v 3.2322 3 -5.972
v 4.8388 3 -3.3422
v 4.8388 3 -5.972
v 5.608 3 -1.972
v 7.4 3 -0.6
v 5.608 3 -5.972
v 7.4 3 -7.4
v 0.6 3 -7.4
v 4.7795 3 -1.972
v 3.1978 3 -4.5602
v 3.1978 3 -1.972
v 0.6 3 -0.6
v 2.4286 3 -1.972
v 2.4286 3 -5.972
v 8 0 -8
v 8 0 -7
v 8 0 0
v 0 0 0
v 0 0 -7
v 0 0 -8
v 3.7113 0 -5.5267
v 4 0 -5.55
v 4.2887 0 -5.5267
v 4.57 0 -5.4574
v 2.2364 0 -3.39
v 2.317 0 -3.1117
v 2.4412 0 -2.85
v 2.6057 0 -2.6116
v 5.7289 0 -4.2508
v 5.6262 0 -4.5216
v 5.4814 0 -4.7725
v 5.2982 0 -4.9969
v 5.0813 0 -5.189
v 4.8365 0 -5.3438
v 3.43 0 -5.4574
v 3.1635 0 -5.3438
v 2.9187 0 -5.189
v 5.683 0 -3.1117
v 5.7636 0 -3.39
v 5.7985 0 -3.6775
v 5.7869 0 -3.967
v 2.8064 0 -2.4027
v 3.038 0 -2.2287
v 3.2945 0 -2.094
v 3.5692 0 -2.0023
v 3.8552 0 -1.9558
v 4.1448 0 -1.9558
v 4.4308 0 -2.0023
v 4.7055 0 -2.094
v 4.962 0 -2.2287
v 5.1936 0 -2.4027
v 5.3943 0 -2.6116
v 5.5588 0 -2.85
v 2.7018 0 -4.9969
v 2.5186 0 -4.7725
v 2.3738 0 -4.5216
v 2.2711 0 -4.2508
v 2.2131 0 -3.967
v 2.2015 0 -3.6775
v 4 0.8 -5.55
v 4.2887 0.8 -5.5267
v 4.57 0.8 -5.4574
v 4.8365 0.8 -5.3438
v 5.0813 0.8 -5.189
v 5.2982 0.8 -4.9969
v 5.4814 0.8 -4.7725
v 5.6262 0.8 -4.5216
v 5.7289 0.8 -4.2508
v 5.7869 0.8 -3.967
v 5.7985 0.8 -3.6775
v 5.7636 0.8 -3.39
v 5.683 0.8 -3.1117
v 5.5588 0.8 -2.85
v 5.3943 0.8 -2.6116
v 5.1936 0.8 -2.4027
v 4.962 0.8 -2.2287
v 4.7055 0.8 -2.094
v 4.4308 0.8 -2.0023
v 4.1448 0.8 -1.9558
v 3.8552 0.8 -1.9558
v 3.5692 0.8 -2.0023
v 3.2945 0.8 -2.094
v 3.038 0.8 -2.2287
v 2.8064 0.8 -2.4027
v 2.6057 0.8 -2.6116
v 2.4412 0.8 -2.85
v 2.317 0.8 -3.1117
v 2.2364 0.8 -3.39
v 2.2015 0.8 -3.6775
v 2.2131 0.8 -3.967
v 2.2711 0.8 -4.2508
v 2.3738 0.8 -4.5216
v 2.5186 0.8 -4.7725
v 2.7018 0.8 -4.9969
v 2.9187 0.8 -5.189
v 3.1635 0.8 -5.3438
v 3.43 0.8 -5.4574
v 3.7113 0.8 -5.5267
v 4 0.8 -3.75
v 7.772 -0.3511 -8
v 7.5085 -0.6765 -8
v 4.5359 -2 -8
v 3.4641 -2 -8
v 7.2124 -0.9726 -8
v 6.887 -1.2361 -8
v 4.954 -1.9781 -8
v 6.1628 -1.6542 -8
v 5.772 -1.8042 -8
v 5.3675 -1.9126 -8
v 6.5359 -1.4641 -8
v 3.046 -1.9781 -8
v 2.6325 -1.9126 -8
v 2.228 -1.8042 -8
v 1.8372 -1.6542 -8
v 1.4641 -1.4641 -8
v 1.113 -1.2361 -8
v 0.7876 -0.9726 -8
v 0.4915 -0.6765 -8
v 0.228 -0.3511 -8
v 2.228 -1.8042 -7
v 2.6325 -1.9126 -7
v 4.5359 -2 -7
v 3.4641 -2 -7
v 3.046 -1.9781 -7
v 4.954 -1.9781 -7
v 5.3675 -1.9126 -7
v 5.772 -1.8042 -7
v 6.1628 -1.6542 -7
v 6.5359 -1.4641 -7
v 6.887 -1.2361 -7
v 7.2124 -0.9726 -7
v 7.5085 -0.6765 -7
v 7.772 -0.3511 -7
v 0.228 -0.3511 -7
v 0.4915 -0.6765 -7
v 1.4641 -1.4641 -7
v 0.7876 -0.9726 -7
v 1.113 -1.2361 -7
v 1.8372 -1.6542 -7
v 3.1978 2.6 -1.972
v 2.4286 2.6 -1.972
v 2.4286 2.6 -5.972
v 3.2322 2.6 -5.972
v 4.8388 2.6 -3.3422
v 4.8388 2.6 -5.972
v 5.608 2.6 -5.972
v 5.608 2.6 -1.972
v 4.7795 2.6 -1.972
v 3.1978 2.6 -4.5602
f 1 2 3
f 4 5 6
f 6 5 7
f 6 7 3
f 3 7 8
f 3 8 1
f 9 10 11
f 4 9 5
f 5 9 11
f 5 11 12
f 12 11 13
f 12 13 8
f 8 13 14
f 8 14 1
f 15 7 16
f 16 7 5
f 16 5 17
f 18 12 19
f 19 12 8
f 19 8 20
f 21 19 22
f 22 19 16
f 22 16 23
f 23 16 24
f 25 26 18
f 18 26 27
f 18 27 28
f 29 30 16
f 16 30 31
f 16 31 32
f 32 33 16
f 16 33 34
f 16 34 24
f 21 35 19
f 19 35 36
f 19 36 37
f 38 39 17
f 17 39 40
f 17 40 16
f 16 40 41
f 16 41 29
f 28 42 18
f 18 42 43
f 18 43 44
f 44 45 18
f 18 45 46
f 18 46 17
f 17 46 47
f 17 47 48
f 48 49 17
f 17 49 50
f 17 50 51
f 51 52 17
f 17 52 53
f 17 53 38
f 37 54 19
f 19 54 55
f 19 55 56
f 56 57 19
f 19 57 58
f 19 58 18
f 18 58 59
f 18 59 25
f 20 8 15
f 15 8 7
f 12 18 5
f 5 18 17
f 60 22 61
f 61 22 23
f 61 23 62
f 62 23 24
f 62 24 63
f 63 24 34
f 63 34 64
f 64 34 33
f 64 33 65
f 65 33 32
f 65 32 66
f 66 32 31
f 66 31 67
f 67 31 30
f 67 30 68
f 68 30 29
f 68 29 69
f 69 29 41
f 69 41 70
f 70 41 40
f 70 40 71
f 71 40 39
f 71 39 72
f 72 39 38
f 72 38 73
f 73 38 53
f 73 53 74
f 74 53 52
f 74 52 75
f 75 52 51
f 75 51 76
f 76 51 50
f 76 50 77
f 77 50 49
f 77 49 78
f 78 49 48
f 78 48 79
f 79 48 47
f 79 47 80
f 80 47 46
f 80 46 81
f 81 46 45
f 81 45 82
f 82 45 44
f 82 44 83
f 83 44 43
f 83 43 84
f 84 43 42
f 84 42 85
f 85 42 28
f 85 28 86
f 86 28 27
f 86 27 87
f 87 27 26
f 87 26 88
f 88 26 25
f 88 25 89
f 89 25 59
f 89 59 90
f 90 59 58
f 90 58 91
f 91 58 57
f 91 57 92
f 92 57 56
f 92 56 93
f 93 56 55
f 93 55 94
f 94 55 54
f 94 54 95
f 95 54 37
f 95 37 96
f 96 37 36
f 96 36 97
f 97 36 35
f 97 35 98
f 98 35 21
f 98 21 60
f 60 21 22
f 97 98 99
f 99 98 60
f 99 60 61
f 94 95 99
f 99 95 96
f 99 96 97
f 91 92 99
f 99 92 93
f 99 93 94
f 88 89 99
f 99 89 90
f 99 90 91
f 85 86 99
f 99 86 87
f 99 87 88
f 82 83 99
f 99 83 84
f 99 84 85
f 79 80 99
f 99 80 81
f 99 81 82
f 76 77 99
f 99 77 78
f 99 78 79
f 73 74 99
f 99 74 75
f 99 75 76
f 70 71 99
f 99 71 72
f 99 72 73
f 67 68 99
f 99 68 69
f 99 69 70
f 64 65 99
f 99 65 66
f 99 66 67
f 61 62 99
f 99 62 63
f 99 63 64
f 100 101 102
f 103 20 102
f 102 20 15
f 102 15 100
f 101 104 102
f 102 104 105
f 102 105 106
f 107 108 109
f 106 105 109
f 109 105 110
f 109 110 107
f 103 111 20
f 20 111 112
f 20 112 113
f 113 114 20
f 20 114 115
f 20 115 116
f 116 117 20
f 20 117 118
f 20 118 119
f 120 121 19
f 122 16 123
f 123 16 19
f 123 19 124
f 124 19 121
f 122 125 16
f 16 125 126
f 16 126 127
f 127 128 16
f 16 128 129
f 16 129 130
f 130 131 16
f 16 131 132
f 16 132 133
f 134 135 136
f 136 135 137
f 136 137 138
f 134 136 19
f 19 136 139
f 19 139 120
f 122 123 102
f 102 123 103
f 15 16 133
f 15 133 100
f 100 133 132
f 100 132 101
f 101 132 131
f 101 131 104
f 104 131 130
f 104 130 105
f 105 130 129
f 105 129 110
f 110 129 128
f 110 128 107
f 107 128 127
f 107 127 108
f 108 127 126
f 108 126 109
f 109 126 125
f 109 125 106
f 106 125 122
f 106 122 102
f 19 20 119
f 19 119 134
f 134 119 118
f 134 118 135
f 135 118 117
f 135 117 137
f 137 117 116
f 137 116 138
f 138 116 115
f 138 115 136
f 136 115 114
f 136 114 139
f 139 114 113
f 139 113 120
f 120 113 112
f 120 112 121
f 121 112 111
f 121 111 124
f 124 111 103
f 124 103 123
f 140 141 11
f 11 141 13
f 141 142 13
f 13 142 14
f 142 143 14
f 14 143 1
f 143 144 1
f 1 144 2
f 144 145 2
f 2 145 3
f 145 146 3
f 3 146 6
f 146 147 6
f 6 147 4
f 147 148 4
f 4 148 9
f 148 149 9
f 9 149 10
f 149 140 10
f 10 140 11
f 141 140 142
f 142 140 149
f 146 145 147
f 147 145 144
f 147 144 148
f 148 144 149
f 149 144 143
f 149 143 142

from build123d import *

# Parameters (mm, degrees)
SKETCH1_W               = 8
SKETCH1_H               = 8
BOSS_EXTRUDE1_DEPTH     = 3
CUT_EXTRUDE1_DEPTH      = 12.704699911
CUT_EXTRUDE1_DEPTH_BACK = 12.704699911
CUT_EXTRUDE2_DEPTH      = 11
SKETCH4_R               = 1.8
CUT_EXTRUDE3_DEPTH      = 0.8
SKETCH5_W               = 8
SKETCH5_H               = 1
BOSS_EXTRUDE2_DEPTH     = 2
FILLET1_R               = 4
CUT_EXTRUDE4_DEPTH      = 0.4


with BuildPart() as part:
    # Sketch1 → Boss-Extrude1 (new body)
    with BuildSketch(Plane(origin=(0, 0, 0), x_dir=(1, 0, 0), z_dir=(0, 1, 0))):
        with Locations((4, 4)):
            Rectangle(SKETCH1_W, SKETCH1_H)
    extrude(amount=BOSS_EXTRUDE1_DEPTH)

    # Sketch2 → Cut-Extrude1 (cut, two sides: drawn at the far end of the back side and taken through both)
    with BuildSketch(Plane.XY.offset(-CUT_EXTRUDE1_DEPTH_BACK)):
        Polygon((0, 0), (0.6, 3), (0, 3), align=None)
        Polygon((8, 0), (7.4, 3), (8, 3), align=None)
    extrude(amount=CUT_EXTRUDE1_DEPTH + CUT_EXTRUDE1_DEPTH_BACK, mode=Mode.SUBTRACT)

    # Sketch3 → Cut-Extrude2 (cut)
    with BuildSketch(Plane(origin=(0, 0, 0), x_dir=(0, 0, -1), z_dir=(1, 0, 0))):
        Polygon((0, 0), (0.6, 3), (0, 3), align=None)
        Polygon((8, 3), (7.4, 3), (8, 0), align=None)
    extrude(amount=CUT_EXTRUDE2_DEPTH, mode=Mode.SUBTRACT)

    # Sketch4 → Cut-Extrude3 (cut)
    with BuildSketch(Plane.XZ):
        with Locations(Location((4, -3.75, 0), (0, 0, 270))):
            Circle(SKETCH4_R)
    extrude(amount=-CUT_EXTRUDE3_DEPTH, mode=Mode.SUBTRACT)

    # Sketch5 → Boss-Extrude2 (add)
    with BuildSketch(Plane.XZ):
        with Locations((4, -7.5)):
            Rectangle(SKETCH5_W, SKETCH5_H)
    extrude(amount=BOSS_EXTRUDE2_DEPTH)

    # Fillet1
    # the kernel refuses this fillet: 4 mm, written as the material it takes off along each edge
    with BuildSketch(Plane(origin=(8, -2, -16.660254038), x_dir=(0, 1, 0), z_dir=(0, 0, 1)), Plane(origin=(0, -2, 1.660254038), x_dir=(0, 1, 0), z_dir=(0, 0, -1))) as fillet1_piece_1:
        with BuildLine():
            CenterArc((4, 3.464101615), FILLET1_R, 180, 60)
            Line((0, 3.464101615), (-0.08, 3.464101615))
            Line((-0.08, 3.464101615), (-0.08, 0))
            Line((-0.08, 0), (0, -0.08))
            ThreePointArc((0, -0.08), (1, -0.08), (1.96, -0.069282032))
            Line((1.96, -0.069282032), (2, 0))
        make_face()
    extrude(amount=18.320508076, mode=Mode.SUBTRACT)

    # Sketch6 → Cut-Extrude4 (cut)
    with BuildSketch(Plane(origin=(0, 3, 0), x_dir=(1, 0, 0), z_dir=(0, 1, 0))):
        Polygon((2.428562008, 1.972012859), (2.428562008, 5.972012859), (3.232247906, 5.972012859), (4.838818418, 3.342205167), (4.838818418, 5.972012859), (5.608049188, 5.972012859), (5.608049188, 1.972012859), (4.779523547, 1.972012859), (3.197792777, 4.560153885), (3.197792777, 1.972012859), align=None)
    extrude(amount=-CUT_EXTRUDE4_DEPTH, mode=Mode.SUBTRACT)


solid = part.part
